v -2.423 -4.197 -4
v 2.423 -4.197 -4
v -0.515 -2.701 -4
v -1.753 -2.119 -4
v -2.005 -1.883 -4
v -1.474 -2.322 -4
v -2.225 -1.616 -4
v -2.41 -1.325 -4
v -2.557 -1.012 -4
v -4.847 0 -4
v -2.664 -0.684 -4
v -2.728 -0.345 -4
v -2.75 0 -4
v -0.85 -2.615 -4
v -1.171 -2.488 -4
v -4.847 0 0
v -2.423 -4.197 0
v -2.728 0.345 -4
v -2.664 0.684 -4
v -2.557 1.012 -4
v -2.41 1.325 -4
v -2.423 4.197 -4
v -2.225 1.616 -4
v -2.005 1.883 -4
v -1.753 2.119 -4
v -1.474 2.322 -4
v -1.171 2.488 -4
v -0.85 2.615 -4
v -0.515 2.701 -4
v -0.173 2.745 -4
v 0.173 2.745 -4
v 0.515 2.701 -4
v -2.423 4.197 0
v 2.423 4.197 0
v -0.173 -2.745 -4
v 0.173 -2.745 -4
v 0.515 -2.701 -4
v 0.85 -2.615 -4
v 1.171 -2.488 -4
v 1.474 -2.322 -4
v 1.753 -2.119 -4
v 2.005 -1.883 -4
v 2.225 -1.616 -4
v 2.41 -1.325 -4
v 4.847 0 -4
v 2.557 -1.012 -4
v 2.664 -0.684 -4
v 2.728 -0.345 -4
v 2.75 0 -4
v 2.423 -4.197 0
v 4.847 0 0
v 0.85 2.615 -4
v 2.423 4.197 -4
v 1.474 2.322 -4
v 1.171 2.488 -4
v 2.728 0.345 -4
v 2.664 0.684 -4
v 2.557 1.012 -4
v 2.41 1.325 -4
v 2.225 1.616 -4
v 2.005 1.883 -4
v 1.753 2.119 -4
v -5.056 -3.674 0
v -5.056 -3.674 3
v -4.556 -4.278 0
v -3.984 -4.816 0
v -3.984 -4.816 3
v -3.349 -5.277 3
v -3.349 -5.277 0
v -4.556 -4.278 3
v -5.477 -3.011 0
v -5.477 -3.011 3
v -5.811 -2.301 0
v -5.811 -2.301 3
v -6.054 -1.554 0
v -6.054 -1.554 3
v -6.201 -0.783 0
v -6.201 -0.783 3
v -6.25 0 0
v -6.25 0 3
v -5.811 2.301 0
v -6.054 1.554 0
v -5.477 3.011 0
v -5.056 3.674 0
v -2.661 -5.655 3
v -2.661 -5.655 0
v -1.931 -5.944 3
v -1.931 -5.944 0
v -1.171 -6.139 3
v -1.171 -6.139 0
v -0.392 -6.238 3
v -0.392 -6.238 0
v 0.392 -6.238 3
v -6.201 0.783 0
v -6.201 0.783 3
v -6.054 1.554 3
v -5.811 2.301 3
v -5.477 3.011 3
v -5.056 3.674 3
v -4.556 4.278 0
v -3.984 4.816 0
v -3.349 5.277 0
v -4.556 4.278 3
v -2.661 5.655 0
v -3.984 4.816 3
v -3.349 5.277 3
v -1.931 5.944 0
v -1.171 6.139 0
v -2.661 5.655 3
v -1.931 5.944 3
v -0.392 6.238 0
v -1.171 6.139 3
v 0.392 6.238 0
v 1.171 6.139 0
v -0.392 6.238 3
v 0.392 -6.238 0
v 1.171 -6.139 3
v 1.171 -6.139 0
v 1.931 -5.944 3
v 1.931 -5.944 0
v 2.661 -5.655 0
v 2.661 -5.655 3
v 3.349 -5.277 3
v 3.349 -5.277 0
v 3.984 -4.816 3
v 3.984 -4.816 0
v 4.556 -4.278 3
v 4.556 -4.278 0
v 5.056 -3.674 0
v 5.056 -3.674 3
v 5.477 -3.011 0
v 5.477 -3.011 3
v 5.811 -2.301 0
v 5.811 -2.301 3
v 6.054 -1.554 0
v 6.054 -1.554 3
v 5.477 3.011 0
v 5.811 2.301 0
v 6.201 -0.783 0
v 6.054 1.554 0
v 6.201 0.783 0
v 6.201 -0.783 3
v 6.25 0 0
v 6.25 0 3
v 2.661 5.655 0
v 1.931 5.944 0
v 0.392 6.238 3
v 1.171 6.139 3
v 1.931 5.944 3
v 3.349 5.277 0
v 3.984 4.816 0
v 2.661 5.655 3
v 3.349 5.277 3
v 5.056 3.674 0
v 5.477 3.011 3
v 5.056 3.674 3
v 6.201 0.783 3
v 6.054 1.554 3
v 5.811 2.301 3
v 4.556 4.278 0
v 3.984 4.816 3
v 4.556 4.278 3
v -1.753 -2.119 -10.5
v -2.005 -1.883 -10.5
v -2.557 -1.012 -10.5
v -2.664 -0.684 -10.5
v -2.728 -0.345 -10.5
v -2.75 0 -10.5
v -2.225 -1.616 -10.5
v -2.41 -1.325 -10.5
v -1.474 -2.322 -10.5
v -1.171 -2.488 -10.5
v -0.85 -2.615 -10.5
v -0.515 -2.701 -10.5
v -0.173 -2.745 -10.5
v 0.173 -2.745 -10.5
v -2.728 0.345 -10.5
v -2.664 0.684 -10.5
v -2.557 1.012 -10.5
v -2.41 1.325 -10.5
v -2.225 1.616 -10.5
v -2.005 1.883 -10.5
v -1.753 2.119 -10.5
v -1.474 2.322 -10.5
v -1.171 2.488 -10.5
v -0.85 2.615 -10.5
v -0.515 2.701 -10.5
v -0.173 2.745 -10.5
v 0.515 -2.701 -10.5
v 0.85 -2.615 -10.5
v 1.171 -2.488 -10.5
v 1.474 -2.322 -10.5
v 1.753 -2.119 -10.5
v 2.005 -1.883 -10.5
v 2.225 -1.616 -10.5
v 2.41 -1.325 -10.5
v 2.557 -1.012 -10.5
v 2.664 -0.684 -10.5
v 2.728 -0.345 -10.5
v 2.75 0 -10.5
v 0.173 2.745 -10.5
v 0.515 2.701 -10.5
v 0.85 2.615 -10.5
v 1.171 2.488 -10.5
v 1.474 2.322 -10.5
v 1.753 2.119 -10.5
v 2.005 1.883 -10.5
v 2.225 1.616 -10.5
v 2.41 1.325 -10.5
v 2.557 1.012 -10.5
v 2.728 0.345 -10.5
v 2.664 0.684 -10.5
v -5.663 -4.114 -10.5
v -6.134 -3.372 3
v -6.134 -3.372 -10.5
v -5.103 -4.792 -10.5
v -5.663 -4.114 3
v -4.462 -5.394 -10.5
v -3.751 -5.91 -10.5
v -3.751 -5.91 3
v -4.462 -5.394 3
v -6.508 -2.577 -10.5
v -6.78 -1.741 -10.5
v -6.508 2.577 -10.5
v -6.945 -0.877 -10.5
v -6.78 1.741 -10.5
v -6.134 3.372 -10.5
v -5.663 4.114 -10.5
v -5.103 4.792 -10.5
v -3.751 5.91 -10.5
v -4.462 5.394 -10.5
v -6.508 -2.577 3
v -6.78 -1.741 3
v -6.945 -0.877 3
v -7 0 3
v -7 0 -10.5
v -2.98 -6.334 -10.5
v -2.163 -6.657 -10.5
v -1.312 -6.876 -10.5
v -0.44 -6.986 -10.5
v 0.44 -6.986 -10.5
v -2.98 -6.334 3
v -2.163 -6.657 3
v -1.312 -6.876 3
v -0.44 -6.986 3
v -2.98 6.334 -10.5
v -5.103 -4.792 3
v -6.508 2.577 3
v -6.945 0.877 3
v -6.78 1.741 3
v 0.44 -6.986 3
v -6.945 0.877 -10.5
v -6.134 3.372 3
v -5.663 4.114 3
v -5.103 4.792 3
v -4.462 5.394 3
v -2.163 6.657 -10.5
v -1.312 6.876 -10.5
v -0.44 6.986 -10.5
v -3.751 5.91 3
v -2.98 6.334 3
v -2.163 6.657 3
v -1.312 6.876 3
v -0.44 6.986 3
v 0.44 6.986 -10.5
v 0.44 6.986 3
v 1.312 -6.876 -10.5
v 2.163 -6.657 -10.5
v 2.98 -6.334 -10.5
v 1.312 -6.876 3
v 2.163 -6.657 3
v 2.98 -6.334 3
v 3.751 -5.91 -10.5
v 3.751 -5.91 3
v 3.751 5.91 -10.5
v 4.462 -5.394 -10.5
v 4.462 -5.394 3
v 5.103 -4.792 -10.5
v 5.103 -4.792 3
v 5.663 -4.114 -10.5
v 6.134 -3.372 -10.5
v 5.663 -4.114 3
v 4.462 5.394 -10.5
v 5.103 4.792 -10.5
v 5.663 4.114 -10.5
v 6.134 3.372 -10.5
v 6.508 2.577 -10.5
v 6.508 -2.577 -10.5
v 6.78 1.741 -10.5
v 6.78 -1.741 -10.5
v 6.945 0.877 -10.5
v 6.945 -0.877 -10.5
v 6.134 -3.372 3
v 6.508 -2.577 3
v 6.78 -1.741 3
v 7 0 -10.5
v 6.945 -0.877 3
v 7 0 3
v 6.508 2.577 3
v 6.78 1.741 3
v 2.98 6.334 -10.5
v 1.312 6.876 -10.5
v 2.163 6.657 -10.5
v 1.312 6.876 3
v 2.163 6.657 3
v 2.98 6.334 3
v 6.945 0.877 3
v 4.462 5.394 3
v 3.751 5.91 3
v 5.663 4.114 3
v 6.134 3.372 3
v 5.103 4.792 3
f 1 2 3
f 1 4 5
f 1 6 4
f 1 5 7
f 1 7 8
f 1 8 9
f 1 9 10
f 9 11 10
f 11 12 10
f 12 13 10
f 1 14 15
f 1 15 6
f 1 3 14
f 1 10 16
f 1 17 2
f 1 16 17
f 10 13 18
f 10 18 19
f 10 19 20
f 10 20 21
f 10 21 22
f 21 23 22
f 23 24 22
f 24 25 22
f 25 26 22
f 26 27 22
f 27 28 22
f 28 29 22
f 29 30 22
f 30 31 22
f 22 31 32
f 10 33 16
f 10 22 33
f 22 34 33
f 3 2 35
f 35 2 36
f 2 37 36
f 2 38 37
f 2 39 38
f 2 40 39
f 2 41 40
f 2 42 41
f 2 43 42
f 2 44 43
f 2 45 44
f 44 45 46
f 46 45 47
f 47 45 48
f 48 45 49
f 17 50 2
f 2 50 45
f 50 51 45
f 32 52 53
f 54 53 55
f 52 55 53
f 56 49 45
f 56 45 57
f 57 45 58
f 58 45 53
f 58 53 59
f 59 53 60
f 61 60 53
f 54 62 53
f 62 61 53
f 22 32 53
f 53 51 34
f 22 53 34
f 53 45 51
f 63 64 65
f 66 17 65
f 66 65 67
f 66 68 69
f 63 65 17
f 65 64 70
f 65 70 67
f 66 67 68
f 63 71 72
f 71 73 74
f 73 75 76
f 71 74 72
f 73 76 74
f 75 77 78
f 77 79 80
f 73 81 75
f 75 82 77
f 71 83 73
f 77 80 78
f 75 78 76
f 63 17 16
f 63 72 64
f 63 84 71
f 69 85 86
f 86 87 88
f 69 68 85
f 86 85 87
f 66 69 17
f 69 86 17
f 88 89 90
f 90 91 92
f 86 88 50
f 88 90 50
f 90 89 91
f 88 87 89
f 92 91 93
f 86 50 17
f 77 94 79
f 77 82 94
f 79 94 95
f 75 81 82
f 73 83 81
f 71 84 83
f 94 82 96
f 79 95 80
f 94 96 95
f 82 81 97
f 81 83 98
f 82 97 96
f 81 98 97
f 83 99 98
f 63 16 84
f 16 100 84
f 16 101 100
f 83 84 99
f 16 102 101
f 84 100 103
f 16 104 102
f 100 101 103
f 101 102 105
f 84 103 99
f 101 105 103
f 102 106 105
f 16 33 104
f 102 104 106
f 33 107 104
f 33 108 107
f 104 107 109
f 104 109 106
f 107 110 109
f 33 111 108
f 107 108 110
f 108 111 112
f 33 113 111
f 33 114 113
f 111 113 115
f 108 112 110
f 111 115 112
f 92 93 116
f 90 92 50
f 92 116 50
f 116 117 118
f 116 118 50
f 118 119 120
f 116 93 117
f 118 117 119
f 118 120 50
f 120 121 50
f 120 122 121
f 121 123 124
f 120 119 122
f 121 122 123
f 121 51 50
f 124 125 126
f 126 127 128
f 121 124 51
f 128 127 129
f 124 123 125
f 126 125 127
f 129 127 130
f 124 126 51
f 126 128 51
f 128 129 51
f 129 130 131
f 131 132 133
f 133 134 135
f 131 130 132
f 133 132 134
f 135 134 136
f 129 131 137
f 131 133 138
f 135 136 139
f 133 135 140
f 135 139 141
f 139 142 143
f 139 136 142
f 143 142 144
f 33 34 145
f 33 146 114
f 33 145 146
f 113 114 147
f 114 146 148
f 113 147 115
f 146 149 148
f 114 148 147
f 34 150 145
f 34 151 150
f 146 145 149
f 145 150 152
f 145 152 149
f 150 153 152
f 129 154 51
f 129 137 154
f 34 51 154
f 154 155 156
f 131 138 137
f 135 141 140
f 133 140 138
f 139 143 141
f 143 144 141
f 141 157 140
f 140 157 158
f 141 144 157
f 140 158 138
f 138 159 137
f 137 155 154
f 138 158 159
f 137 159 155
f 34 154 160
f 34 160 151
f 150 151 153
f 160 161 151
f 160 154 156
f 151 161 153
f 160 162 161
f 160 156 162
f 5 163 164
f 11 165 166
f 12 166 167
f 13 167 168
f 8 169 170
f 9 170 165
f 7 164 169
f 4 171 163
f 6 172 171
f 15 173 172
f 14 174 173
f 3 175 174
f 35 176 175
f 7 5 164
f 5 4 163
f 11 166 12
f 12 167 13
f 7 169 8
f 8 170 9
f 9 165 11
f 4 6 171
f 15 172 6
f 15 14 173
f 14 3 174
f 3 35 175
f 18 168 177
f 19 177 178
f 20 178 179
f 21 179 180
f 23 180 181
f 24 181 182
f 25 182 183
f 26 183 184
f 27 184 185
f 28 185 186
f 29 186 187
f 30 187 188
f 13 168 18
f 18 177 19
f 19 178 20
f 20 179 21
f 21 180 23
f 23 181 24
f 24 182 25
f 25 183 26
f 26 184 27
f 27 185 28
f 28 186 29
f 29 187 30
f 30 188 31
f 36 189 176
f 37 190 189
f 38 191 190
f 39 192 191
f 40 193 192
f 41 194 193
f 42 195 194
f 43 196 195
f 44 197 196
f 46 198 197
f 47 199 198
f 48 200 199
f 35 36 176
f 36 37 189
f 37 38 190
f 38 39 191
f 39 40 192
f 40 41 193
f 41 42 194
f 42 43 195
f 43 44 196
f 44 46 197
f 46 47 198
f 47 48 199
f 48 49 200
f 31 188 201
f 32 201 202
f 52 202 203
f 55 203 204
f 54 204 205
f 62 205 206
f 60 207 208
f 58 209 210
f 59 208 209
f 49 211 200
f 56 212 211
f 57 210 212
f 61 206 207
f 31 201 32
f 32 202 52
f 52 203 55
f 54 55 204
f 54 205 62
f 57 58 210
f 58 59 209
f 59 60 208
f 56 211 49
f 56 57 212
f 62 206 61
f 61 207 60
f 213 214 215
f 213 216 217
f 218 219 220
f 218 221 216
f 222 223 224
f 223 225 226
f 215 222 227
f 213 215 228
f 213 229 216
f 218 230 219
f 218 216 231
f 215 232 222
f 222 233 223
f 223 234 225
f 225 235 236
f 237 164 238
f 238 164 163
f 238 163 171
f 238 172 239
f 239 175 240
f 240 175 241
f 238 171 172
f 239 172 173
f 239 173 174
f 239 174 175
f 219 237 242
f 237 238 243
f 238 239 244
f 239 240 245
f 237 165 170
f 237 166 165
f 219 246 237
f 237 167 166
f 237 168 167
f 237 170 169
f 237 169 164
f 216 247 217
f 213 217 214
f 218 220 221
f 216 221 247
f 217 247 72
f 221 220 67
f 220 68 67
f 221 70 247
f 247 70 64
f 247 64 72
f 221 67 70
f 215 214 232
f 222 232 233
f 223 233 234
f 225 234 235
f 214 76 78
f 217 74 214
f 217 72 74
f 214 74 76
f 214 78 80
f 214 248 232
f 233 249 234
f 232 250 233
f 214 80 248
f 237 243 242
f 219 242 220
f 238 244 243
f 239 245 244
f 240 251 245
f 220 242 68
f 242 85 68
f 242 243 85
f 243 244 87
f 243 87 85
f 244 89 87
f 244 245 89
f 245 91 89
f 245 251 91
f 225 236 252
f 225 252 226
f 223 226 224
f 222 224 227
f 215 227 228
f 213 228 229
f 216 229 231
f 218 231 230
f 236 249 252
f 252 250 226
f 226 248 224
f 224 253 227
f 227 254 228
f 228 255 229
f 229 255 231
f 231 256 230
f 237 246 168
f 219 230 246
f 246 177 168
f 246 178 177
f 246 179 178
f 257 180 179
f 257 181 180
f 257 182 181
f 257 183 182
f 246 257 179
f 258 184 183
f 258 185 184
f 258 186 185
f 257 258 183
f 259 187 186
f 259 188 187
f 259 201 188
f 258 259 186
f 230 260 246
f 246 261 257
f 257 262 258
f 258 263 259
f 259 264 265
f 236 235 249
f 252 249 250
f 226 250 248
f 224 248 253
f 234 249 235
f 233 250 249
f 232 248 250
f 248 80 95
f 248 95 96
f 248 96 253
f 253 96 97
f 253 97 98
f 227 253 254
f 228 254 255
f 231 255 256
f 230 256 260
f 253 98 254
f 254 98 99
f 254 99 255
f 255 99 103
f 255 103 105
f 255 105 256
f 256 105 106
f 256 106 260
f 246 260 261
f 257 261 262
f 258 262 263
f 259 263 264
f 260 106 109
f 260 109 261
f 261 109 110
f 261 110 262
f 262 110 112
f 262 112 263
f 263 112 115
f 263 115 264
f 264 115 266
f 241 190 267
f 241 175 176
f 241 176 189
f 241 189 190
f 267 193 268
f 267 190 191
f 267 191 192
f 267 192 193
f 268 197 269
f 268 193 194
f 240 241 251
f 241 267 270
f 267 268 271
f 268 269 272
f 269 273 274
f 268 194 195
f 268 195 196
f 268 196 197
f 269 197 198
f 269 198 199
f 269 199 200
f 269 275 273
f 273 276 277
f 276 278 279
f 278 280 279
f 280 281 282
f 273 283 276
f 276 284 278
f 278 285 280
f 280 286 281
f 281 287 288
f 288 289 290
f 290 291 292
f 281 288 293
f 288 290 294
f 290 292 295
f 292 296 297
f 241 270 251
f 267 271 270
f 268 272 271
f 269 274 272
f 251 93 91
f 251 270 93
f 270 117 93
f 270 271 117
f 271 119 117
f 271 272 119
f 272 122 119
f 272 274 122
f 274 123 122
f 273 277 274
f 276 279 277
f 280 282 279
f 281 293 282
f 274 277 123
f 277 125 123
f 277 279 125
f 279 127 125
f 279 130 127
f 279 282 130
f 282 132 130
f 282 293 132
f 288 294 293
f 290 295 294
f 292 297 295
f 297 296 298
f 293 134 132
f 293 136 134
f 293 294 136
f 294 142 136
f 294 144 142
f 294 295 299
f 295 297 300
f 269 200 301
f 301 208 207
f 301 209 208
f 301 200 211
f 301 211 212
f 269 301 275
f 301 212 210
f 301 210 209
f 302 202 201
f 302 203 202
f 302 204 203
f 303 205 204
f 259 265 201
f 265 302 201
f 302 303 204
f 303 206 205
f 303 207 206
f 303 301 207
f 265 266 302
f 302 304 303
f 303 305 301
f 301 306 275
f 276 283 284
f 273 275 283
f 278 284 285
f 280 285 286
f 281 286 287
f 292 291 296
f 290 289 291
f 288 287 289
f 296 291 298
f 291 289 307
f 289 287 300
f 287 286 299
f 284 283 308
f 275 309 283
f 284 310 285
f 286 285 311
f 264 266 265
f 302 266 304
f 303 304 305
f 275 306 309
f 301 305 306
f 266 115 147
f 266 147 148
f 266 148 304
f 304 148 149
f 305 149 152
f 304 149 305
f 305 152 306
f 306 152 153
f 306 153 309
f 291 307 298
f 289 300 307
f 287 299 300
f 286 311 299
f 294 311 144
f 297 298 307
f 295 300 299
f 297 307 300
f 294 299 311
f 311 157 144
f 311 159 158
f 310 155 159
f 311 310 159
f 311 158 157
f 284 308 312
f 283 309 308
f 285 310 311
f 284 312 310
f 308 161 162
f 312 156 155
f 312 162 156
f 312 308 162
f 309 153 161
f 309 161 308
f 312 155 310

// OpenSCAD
$fn = 50;

difference() {
	union() {
		translate(v = [0, 0, -10.5]) {
			cylinder(h = 13.5, r = 7.0);
		}
	}
	union() {
		translate(v = [0, 0, 0]) {
			rotate(a = [0, 0, 0]) {
				difference() {
					union() {
						translate(v = [0, 0, -4]) {
							linear_extrude(height = 4) {
								polygon(points = [[4.8468, 0.0], [2.4234000000000004, 4.197451927062417], [-2.423399999999999, 4.197451927062417], [-4.8468, 5.935618106107392e-16], [-2.423400000000002, -4.197451927062416], [2.423399999999997, -4.197451927062419]]);
							}
						}
					}
					union();
				}
			}
		}
		#cylinder(h = 3, r = 6.25);
		#translate(v = [0, 0, -100.0]) {
			cylinder(h = 200, r = 2.75);
		}
	}
}
